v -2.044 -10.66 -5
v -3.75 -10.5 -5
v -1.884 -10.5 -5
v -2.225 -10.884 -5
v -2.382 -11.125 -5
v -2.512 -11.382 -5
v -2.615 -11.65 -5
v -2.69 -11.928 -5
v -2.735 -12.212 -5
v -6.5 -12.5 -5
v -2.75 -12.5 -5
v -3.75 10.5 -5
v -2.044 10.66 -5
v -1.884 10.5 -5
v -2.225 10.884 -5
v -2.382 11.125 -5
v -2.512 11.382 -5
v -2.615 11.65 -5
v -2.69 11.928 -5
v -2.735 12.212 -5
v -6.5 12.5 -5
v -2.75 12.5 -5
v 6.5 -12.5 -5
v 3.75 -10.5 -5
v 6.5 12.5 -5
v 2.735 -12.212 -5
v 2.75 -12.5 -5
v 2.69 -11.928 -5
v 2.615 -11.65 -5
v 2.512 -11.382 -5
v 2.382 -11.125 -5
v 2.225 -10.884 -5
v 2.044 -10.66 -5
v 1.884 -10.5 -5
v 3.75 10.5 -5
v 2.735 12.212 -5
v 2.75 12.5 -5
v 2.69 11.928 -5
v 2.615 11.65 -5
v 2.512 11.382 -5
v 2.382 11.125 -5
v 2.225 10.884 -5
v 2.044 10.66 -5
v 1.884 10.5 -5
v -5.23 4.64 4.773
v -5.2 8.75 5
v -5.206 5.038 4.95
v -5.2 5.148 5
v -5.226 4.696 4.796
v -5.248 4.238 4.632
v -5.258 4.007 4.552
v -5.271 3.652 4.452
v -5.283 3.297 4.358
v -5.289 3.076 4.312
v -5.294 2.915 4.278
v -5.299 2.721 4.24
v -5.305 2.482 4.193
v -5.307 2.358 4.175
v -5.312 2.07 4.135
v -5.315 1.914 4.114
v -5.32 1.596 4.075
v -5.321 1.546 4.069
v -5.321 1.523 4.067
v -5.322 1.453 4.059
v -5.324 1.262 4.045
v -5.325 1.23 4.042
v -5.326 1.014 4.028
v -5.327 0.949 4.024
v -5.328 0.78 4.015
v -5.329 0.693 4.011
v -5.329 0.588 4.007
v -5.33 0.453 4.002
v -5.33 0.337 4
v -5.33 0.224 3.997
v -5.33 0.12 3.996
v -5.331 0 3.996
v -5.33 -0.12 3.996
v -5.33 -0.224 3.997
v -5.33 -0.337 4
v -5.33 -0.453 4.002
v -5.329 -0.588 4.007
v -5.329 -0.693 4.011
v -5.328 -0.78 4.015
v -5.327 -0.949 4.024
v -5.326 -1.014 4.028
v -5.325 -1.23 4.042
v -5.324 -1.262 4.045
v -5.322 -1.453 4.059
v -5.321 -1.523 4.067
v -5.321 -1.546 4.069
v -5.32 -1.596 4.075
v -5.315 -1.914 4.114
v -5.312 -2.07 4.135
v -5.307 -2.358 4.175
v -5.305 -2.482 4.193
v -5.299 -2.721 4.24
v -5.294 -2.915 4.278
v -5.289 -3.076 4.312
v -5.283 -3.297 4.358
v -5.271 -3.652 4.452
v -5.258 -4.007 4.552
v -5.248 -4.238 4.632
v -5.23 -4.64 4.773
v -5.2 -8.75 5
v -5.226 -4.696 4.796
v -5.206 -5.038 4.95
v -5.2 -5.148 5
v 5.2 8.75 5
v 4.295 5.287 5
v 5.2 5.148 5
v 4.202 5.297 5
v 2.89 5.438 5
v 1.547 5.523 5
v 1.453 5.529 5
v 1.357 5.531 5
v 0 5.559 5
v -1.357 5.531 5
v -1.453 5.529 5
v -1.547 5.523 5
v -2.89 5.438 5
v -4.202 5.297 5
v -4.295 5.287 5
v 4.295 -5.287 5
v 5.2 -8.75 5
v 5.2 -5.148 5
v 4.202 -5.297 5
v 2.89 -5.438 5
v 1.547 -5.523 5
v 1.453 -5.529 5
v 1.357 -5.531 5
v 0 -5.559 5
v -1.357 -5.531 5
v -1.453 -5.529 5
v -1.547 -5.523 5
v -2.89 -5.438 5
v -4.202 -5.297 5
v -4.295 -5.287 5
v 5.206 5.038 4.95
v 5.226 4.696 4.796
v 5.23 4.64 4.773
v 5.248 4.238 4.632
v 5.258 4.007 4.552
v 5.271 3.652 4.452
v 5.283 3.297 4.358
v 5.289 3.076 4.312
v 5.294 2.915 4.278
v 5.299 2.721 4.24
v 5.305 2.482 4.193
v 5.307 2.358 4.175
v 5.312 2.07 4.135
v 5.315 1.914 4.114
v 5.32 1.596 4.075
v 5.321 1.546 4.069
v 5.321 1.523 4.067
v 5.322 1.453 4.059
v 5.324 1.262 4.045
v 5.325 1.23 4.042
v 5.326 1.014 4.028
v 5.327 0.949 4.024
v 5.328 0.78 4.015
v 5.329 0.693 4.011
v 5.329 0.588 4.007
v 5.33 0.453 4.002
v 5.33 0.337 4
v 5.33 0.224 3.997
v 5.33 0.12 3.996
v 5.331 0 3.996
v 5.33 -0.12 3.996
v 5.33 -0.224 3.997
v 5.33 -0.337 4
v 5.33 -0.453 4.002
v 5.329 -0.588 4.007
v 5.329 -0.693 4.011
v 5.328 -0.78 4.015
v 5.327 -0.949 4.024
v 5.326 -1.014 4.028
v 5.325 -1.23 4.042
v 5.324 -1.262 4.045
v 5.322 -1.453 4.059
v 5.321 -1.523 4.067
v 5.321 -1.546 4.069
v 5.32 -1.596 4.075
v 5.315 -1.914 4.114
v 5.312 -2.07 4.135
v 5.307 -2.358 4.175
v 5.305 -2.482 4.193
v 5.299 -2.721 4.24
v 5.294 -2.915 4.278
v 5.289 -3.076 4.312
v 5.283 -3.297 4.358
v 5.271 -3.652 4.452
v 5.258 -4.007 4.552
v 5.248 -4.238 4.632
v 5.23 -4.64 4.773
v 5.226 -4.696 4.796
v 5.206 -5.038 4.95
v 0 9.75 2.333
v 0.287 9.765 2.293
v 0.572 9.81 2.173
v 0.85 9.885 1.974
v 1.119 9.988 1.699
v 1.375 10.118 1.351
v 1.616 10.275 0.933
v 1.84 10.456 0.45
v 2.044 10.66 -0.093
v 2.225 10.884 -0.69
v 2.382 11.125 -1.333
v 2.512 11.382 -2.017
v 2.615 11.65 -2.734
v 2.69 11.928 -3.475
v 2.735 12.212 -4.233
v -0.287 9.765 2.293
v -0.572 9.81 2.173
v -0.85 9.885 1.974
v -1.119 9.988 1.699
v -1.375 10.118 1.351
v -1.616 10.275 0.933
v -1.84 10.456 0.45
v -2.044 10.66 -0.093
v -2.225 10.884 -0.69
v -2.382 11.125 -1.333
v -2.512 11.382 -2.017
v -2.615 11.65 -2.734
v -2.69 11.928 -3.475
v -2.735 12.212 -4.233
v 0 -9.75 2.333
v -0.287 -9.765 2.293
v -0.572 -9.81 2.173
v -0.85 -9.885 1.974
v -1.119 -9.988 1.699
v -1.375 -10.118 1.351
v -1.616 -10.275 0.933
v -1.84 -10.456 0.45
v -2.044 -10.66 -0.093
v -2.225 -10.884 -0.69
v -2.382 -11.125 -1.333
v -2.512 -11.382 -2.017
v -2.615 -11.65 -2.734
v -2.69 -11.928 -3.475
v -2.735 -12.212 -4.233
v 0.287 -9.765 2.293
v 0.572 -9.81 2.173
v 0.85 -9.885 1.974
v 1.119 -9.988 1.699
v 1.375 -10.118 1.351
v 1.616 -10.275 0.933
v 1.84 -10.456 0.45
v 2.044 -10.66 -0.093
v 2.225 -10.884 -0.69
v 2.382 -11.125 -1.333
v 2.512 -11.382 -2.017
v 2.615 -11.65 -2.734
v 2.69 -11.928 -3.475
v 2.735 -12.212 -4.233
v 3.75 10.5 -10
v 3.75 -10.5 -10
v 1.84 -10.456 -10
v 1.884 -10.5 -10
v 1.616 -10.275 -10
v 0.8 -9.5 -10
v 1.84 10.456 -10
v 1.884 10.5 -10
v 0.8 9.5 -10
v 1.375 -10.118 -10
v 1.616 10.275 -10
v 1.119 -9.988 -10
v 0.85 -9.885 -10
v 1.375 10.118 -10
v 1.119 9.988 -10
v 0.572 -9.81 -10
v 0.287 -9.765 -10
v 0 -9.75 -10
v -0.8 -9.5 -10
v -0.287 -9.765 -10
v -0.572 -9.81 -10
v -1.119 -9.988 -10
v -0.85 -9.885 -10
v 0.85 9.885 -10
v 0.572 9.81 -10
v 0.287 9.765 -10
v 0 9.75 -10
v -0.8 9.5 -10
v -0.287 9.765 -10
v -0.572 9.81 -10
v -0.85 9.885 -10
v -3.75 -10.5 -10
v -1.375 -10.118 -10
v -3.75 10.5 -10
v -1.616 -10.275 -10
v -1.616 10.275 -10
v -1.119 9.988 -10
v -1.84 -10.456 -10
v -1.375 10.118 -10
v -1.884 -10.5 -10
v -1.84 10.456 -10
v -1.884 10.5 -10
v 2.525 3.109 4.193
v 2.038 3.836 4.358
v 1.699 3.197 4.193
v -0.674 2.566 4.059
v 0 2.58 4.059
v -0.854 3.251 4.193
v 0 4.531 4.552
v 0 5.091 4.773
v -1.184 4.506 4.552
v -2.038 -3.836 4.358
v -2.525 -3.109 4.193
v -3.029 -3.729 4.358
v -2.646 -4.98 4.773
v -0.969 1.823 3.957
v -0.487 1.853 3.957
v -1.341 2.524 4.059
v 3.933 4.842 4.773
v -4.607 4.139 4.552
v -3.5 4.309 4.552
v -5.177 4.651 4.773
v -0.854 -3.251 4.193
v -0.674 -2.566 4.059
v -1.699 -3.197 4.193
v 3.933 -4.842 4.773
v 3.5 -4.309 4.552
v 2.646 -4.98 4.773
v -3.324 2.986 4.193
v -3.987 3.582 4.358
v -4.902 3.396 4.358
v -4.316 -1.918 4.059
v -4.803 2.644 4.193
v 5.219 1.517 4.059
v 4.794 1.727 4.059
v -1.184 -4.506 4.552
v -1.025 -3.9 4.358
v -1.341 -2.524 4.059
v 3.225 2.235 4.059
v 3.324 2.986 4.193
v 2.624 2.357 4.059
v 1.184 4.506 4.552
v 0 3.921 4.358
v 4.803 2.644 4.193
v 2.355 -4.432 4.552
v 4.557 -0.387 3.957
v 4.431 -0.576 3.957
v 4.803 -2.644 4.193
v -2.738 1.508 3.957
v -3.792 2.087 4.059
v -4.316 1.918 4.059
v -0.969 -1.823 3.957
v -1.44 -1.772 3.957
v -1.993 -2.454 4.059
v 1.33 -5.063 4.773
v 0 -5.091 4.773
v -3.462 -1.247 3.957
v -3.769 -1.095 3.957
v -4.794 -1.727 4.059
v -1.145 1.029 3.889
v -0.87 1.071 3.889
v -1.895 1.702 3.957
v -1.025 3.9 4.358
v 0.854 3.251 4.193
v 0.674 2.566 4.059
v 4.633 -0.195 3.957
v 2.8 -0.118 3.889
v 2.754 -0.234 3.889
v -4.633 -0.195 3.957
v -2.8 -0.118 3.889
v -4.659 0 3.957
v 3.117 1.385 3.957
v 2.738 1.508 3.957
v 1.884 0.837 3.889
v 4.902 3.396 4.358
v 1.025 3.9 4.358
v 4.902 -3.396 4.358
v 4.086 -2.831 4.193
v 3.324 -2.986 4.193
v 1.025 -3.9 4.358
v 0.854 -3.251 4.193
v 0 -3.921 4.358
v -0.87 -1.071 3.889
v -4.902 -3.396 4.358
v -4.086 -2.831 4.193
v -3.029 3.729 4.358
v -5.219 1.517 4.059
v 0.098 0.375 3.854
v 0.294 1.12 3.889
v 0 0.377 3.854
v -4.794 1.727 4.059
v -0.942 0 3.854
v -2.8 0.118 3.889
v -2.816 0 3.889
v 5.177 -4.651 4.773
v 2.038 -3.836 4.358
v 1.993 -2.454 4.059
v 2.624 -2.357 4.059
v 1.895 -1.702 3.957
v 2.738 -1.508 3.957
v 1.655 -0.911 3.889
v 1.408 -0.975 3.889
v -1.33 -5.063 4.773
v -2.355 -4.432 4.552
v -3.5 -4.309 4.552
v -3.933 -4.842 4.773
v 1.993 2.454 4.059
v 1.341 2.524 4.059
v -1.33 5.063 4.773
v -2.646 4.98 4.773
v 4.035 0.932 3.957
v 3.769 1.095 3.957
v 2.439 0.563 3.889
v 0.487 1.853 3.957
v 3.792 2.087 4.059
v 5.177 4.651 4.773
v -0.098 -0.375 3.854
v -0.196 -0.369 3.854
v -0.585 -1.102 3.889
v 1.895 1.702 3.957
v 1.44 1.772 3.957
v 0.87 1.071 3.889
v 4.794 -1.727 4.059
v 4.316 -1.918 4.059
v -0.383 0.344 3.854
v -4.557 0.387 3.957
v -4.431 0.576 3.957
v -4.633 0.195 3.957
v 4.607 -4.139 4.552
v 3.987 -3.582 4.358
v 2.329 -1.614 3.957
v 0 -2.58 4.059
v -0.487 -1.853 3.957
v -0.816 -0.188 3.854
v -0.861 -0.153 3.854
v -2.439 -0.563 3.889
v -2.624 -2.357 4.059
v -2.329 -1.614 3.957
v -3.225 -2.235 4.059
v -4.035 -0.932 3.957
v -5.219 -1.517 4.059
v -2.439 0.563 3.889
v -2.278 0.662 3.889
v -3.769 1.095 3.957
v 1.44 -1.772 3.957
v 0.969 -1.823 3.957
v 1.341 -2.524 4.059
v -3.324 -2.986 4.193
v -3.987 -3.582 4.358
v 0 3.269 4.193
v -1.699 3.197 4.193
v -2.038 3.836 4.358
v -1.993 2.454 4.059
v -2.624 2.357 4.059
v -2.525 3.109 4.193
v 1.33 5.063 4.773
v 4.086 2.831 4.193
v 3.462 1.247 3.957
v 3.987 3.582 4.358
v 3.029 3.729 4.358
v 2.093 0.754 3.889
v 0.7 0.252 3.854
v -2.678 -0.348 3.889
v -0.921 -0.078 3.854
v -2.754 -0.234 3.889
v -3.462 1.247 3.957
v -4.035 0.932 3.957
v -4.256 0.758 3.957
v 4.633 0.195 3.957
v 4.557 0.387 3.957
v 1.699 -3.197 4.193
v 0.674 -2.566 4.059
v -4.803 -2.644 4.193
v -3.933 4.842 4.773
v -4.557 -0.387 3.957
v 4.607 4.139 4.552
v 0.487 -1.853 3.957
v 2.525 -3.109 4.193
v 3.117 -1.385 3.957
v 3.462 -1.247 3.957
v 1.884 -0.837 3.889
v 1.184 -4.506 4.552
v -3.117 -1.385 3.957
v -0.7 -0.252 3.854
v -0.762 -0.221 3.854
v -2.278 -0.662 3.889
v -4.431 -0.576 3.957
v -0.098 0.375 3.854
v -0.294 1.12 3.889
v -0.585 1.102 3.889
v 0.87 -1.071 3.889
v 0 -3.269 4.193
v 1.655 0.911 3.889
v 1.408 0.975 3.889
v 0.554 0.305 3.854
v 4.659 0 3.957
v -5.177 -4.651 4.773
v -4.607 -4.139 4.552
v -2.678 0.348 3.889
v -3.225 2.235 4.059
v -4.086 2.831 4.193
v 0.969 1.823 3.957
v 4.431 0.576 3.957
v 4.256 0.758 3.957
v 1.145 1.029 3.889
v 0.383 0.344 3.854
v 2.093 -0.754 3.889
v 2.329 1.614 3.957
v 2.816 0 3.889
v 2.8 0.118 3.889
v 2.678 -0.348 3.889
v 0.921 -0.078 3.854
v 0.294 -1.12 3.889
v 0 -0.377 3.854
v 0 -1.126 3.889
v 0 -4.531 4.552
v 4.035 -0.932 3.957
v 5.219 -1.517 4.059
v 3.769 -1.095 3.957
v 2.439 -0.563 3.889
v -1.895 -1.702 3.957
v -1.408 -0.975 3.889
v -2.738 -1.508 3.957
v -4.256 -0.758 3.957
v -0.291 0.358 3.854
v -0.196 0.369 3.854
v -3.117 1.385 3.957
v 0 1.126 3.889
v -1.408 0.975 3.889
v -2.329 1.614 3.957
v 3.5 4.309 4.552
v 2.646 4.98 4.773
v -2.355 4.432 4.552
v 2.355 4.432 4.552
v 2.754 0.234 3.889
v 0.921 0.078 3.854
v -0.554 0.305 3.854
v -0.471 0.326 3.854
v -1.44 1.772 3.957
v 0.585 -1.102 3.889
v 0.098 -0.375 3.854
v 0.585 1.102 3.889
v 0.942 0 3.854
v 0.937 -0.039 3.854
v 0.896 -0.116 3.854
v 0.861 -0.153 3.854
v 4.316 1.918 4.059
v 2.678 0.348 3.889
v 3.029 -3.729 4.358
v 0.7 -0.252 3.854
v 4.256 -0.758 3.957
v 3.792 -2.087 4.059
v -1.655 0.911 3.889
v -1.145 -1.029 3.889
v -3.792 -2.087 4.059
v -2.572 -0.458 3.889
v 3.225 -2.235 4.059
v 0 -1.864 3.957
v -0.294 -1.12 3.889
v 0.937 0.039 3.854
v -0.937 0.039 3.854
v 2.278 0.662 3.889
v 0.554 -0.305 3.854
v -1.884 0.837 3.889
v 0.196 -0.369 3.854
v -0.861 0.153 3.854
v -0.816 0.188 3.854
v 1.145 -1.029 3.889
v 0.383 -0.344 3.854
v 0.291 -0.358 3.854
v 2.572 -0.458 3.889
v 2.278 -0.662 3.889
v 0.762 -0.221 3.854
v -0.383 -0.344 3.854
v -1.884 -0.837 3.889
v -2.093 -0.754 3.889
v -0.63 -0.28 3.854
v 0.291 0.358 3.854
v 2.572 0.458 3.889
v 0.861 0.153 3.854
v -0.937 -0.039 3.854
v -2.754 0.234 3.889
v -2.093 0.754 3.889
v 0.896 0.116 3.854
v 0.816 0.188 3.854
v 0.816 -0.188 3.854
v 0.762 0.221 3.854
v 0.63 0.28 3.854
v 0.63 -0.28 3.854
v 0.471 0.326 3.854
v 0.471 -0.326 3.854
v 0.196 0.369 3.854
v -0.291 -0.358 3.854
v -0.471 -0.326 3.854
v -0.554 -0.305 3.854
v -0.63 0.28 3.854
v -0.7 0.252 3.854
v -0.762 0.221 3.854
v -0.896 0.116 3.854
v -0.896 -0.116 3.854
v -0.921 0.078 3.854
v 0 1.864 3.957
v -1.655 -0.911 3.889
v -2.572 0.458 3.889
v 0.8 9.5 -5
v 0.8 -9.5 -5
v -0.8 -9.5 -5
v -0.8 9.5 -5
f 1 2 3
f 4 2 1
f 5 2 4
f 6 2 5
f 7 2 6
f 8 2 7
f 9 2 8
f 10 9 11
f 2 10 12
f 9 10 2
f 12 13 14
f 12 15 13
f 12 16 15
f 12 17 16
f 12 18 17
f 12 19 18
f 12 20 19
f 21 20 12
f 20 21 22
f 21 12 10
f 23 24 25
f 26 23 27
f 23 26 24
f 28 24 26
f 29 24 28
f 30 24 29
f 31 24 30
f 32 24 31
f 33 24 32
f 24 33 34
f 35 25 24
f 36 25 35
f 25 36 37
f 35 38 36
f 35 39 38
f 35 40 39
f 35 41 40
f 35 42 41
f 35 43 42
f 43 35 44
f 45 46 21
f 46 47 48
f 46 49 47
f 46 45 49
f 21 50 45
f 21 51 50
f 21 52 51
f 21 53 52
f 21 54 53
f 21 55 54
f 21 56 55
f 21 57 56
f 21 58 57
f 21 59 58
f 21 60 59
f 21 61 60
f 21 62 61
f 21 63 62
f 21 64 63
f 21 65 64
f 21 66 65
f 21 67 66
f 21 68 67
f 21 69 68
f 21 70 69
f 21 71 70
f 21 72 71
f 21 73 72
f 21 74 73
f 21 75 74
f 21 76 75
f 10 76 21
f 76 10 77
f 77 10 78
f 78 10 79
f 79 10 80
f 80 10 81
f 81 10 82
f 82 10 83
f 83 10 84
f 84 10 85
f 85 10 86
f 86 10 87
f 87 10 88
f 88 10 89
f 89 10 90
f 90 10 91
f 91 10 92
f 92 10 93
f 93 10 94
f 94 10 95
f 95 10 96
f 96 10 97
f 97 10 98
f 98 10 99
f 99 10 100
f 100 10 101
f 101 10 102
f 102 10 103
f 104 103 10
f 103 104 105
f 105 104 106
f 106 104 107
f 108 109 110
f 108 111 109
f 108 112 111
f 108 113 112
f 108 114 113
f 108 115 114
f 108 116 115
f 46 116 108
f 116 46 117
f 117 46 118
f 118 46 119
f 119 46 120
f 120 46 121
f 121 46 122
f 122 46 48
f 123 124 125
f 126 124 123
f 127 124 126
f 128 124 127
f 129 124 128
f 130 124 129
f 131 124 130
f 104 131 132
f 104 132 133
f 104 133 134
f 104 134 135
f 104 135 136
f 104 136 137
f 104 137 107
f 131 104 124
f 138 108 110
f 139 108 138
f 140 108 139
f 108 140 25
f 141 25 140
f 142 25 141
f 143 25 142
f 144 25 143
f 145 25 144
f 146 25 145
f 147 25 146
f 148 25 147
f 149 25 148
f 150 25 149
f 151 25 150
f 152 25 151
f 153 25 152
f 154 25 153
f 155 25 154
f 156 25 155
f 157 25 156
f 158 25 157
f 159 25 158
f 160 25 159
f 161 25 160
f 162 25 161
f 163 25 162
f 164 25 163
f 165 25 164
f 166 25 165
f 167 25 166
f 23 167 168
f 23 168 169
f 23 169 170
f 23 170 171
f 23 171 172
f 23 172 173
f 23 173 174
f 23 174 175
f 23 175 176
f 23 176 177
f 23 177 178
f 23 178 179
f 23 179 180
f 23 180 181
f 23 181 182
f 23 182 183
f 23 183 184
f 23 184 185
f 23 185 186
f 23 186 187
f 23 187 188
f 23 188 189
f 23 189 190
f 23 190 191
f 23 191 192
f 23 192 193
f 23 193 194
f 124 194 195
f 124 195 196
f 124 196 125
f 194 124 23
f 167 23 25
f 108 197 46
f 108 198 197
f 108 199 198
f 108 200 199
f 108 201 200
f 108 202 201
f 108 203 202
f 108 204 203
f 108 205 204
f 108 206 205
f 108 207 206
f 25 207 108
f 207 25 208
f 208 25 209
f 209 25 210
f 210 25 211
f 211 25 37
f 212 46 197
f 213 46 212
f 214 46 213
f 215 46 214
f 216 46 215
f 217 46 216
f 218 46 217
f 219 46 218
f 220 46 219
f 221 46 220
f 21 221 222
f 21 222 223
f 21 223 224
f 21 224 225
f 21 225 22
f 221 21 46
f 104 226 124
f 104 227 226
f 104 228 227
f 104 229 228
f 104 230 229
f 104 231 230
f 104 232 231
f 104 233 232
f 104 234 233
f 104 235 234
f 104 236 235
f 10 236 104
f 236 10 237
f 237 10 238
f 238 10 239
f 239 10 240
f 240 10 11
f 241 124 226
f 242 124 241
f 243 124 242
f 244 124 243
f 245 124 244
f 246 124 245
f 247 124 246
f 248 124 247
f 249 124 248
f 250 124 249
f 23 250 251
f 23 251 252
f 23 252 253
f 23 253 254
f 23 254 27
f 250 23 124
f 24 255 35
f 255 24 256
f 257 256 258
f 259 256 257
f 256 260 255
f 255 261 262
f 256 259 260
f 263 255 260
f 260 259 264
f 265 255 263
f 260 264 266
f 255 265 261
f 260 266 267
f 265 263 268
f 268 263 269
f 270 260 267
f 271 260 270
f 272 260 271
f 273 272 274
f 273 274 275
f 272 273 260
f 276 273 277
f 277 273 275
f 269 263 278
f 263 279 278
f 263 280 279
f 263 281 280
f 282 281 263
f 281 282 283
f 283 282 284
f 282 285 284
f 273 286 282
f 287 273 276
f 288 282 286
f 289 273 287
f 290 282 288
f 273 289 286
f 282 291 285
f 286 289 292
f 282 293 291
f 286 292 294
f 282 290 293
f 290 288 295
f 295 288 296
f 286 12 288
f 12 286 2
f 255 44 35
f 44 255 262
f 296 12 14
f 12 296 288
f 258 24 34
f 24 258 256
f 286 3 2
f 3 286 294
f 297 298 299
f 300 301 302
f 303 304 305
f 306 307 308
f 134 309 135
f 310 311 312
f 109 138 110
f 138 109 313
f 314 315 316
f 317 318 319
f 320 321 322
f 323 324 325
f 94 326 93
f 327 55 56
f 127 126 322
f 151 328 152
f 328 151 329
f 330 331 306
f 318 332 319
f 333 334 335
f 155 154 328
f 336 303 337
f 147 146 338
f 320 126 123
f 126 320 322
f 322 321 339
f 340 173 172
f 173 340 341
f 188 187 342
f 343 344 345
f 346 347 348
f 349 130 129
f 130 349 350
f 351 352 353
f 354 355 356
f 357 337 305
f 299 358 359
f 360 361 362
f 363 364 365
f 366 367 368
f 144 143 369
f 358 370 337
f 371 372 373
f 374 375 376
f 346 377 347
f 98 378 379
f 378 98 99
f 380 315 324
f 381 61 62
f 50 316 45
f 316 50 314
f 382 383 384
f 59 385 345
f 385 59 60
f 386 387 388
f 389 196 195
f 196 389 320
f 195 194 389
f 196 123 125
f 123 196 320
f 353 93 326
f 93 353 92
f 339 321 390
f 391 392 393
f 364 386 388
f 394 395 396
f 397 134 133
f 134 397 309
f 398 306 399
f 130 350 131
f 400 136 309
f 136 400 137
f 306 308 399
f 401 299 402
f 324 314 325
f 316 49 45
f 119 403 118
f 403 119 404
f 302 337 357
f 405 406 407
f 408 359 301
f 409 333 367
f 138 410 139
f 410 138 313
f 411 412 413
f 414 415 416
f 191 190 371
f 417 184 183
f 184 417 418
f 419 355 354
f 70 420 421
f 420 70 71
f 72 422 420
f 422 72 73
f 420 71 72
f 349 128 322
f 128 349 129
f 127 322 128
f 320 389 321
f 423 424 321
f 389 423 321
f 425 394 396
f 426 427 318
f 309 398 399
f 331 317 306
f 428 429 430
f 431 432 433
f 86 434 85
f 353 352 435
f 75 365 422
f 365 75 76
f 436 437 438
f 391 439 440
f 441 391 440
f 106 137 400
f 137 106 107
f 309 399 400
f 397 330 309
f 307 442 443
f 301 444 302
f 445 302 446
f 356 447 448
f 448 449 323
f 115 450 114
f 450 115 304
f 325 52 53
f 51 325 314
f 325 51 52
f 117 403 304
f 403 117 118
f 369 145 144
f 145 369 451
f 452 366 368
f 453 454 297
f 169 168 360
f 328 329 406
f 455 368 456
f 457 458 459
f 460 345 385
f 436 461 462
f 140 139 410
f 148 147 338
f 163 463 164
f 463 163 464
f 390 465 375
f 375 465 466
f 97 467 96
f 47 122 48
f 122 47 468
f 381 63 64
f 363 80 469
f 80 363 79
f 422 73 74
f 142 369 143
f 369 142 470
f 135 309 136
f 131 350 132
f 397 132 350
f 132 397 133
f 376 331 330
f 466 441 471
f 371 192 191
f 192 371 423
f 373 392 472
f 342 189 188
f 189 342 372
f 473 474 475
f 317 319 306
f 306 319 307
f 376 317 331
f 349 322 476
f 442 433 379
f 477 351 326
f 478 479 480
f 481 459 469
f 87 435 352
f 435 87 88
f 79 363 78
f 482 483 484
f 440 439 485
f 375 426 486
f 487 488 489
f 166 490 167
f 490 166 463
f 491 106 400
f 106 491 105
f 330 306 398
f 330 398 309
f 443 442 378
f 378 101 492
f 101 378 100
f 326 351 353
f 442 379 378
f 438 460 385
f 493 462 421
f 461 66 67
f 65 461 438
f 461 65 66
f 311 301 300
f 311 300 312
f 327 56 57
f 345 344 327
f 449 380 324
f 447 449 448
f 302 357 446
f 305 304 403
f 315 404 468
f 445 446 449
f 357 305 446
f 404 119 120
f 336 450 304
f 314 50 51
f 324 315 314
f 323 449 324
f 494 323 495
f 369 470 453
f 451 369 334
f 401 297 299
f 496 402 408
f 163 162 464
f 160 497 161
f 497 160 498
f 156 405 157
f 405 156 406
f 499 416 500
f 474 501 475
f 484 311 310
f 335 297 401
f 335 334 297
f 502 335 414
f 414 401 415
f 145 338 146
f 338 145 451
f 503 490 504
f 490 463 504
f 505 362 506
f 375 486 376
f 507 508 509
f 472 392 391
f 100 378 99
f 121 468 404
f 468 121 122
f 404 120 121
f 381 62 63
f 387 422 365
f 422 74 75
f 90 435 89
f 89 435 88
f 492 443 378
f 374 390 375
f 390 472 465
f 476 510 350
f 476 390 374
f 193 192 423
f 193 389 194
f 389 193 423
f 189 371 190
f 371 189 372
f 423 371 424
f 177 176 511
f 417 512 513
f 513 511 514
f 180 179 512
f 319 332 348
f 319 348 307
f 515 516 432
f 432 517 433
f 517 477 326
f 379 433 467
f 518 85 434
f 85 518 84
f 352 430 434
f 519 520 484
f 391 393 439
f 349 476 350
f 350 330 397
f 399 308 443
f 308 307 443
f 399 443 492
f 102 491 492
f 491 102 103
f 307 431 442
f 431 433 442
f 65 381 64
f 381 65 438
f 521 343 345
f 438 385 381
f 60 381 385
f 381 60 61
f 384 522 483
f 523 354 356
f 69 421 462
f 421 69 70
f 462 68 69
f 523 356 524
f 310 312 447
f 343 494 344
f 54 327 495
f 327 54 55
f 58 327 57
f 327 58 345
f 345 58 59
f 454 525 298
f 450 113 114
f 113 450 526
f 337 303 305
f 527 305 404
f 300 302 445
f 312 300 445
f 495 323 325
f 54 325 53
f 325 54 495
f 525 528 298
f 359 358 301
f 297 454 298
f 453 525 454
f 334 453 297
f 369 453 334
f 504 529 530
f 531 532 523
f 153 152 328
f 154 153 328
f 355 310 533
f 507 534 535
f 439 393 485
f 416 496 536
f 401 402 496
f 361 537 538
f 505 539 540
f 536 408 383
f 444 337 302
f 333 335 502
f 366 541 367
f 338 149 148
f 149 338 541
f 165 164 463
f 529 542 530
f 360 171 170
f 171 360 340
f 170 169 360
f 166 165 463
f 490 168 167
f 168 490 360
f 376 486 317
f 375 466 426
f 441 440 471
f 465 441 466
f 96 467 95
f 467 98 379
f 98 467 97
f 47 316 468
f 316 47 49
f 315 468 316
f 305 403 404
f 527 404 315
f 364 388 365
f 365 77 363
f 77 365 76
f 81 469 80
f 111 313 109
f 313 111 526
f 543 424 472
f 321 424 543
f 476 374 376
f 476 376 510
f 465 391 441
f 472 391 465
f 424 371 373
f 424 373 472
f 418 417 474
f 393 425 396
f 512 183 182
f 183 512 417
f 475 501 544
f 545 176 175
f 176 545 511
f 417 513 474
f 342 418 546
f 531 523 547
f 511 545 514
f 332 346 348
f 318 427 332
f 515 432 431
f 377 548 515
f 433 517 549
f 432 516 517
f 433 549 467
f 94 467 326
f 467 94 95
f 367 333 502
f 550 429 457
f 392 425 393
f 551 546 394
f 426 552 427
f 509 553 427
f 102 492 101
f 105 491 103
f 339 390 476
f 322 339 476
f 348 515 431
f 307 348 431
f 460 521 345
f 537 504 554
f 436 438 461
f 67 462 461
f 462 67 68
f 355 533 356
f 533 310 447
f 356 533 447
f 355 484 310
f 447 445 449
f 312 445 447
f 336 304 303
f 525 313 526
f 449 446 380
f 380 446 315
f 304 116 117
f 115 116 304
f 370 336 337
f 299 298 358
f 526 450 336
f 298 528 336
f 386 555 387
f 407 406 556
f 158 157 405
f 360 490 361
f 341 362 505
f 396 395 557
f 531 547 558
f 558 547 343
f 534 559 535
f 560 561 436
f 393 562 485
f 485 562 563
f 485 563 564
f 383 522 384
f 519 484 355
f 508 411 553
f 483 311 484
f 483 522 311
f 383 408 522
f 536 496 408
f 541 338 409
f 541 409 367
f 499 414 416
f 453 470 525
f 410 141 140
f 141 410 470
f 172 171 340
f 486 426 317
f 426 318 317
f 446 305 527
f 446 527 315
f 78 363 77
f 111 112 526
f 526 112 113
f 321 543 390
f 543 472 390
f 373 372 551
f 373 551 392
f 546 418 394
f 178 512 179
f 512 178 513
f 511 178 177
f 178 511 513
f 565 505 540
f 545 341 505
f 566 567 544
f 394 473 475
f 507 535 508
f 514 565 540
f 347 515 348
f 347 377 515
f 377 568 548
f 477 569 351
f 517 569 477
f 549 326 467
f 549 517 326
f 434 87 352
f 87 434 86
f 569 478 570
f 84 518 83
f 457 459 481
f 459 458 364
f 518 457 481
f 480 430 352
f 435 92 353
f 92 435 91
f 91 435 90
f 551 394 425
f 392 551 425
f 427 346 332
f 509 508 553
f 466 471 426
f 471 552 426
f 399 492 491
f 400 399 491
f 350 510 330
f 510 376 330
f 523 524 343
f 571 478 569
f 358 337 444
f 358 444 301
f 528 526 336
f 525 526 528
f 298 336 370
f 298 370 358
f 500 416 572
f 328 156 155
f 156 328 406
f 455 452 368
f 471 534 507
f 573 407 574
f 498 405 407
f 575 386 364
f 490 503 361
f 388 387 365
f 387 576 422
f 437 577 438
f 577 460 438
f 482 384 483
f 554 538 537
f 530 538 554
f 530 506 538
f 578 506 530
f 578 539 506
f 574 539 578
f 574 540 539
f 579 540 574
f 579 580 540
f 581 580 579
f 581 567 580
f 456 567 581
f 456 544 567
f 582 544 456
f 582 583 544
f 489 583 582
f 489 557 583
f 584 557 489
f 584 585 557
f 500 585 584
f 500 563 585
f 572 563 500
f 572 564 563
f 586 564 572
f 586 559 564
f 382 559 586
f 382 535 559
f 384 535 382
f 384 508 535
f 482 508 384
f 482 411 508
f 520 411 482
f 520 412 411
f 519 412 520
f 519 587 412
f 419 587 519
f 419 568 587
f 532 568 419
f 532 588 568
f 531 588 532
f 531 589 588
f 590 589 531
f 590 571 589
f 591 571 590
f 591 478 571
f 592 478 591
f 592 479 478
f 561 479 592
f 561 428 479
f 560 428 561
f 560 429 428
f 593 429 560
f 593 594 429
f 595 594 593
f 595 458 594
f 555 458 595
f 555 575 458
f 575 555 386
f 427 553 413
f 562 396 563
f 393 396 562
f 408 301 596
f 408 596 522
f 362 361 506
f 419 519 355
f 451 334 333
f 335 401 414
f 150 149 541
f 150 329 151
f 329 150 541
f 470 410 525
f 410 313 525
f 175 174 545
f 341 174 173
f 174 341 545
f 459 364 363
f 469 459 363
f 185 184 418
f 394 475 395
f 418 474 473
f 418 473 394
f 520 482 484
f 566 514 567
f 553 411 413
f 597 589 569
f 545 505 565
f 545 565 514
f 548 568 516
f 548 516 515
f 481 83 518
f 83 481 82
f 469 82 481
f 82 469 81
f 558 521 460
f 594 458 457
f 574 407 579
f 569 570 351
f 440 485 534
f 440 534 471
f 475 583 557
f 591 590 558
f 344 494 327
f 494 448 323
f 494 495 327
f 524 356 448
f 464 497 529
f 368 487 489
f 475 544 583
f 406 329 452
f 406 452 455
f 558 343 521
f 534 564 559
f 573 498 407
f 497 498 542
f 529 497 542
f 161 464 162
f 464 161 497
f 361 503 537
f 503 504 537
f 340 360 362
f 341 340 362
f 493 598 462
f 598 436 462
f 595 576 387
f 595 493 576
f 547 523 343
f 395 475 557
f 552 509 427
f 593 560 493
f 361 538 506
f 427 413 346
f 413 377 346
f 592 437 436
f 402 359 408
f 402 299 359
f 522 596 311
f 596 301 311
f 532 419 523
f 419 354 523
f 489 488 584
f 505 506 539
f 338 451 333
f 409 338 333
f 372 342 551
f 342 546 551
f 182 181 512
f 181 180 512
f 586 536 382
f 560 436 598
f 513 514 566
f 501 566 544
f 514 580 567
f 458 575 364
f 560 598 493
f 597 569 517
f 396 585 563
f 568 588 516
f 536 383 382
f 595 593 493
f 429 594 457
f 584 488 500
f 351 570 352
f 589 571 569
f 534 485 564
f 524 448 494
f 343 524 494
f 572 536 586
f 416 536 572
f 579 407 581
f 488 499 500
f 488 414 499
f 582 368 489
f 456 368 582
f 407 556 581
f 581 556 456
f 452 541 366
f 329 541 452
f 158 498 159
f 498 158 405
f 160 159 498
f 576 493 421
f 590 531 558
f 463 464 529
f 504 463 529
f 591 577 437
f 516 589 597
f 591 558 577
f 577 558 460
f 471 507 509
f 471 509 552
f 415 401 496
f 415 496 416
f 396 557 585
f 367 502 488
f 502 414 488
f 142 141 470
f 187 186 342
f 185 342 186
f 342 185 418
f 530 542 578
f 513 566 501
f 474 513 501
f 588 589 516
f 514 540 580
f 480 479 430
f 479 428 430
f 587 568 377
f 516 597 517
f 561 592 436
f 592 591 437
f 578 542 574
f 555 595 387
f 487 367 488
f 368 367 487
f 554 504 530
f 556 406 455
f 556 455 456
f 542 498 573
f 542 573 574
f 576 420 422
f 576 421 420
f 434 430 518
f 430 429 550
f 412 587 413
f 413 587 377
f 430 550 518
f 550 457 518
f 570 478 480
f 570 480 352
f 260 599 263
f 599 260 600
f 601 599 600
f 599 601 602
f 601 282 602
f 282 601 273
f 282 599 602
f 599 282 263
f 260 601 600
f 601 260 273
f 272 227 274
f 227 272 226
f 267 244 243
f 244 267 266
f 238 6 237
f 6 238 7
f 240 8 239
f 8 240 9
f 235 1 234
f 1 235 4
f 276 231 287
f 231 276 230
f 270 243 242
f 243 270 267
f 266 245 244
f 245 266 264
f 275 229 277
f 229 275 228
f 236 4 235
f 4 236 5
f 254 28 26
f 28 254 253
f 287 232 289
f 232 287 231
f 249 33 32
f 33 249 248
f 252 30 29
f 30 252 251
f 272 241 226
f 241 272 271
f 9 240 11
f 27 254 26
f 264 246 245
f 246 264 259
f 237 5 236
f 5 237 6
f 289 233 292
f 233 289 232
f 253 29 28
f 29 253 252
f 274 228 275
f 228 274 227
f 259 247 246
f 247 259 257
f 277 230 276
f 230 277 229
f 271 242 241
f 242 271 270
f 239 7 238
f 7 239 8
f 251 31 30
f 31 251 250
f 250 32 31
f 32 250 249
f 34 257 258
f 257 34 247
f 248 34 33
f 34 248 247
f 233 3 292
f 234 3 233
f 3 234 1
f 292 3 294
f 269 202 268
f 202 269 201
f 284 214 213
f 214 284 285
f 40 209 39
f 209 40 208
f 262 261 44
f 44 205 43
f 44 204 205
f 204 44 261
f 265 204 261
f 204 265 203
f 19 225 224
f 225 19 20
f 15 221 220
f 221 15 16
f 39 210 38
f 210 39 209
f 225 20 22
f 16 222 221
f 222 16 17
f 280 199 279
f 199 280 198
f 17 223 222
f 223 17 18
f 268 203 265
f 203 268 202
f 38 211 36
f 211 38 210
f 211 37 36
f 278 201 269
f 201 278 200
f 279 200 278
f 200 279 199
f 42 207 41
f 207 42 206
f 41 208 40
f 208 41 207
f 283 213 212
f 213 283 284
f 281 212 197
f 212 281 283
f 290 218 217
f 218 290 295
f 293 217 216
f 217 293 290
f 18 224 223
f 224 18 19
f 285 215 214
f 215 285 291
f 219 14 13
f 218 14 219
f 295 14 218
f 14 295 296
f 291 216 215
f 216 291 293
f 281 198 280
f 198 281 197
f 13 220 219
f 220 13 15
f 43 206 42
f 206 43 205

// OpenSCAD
$fn=60;


module drawSlider()
{  
    
    difference(){
        union(){
            linear_extrude(height=10, scale=[0.8, 0.7], center=true){
                square([13,25], center=true);
            }
            
            translate([0, 0, -7])
            cube([7.5, 21, 6], center=true);
            
        }
        
        translate([0,0,7]){
            scale([2,0.8,0.35]){
                sphere(r=9);
        }} 
    }
}

difference(){
    
    drawSlider();
    
    // center cut
    translate([0,0,-10]){ ;
        cube([1.6,19,10], center=true);
    }
    
    // screw headroom
    translate([0, -12.5, -15.1])
    cylinder(h=19, d=5.5, center=false);
    
    // screw headroom
    translate([0, 12.5, -15.1])
    cylinder(h=19, d=5.5, center=false);
    
}
